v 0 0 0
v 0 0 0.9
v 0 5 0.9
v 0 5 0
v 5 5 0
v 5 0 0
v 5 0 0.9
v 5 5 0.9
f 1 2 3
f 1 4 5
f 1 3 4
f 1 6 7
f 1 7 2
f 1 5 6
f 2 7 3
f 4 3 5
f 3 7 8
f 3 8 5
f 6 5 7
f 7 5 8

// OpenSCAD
/* Warning, this is a very basic generator with a lot of approximation 
input data : [VPQFN, 9RW, 5x5x0.9mm, 32, , A, C04-00688A]
generated by com.zoubworld.electronics.cad.model3d.Basic
Date : Sun Feb 15 10:50:49 CET 2026
*/

//body
color("black")
translate([0,0,0])
cube([5.0,5.0,0.9], center=false);
